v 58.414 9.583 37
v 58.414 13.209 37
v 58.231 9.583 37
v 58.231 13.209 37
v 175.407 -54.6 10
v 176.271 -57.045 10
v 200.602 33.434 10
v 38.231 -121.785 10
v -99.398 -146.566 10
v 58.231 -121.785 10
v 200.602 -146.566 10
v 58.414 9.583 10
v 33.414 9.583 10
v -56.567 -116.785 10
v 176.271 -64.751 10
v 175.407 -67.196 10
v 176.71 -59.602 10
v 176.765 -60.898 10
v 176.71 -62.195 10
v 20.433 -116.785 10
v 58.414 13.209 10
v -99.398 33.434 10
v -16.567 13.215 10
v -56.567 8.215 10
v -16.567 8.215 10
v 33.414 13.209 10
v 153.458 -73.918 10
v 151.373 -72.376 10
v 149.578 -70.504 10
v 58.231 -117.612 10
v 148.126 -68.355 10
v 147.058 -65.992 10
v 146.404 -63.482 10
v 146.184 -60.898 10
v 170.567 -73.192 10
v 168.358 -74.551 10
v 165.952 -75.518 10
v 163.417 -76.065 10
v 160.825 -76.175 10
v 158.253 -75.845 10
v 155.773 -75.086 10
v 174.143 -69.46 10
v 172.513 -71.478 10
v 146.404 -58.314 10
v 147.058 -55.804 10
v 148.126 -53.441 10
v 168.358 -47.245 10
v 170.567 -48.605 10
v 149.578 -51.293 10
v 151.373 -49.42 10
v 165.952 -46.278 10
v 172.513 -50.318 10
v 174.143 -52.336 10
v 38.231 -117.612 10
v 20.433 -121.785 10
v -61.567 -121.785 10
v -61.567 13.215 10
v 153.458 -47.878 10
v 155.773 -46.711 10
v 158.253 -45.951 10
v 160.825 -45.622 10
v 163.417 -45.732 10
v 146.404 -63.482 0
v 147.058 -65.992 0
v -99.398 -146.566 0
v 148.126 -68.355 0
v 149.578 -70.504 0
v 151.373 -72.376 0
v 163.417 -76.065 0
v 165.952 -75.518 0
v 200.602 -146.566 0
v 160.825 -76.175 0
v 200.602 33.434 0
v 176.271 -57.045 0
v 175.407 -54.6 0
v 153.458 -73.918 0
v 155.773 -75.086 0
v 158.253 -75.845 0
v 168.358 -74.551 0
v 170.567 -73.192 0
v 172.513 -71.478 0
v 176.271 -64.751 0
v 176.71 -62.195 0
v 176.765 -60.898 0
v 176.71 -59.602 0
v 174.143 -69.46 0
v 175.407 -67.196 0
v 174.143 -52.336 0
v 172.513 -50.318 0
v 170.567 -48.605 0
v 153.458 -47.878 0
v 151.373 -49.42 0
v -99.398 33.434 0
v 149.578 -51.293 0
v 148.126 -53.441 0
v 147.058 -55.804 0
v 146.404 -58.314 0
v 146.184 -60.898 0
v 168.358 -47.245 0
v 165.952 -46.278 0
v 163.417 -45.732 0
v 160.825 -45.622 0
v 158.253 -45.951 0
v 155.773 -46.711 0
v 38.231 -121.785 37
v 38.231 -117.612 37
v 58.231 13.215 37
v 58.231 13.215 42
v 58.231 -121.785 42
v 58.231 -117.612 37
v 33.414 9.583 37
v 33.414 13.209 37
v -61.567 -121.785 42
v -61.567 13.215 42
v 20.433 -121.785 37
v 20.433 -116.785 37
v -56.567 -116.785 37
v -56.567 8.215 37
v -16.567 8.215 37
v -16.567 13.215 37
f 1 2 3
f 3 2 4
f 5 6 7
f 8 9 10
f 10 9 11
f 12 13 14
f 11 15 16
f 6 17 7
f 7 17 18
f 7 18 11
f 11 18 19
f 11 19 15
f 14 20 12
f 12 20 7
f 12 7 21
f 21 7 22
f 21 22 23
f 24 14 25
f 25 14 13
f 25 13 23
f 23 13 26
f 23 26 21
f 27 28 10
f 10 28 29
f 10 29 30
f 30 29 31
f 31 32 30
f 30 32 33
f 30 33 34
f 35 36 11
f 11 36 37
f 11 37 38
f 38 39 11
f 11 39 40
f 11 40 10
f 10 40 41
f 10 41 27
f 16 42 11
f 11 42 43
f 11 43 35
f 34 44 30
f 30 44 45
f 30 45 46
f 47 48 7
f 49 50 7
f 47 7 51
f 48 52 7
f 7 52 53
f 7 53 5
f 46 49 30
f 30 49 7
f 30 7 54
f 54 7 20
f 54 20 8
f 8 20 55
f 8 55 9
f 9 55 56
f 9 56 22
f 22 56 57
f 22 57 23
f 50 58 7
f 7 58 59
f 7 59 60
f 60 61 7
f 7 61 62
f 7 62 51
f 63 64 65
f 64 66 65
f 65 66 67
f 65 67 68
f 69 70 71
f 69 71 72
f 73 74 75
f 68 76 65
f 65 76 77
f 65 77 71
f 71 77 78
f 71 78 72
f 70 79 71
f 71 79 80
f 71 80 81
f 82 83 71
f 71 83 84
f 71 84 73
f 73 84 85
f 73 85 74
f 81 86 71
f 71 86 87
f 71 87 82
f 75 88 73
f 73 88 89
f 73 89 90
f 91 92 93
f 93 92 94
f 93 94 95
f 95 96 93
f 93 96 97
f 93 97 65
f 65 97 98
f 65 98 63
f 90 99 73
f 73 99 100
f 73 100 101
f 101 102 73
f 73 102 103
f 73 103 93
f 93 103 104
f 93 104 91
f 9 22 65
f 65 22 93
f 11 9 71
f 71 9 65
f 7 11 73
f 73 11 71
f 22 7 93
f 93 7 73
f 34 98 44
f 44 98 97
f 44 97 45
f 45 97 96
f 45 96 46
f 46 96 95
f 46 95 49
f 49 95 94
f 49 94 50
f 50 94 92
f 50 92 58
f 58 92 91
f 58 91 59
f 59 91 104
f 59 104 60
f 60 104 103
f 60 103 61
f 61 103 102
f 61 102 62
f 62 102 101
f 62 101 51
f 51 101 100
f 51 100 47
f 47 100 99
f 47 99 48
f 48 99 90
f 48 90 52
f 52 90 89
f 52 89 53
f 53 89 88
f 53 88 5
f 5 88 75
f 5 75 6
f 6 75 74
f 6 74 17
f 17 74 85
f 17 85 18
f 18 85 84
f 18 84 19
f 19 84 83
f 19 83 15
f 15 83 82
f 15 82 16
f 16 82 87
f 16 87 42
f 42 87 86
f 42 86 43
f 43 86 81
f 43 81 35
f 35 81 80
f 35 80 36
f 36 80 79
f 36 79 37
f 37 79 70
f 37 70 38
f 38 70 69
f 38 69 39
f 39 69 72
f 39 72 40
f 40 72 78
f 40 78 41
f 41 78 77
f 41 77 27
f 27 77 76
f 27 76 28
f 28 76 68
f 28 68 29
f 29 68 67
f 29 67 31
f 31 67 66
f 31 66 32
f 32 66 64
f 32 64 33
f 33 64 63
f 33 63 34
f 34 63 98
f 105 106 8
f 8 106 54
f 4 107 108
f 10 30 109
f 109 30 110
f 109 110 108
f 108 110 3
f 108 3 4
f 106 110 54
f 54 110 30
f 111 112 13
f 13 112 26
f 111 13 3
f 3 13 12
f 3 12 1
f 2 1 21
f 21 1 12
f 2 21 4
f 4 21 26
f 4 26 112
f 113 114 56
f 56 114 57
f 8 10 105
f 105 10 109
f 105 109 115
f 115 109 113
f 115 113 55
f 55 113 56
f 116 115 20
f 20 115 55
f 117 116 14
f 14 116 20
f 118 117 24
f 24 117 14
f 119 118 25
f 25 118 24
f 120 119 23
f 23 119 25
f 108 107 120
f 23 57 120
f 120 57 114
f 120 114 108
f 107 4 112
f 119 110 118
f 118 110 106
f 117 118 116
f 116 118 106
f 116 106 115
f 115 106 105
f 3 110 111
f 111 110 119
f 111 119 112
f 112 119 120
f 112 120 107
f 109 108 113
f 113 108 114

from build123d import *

# Parameters (mm, degrees)
SKETCH1_W           = 300
SKETCH1_H           = 180
SKETCH1_R           = 15.290295186
BOSS_EXTRUDE1_DEPTH = 10
SKETCH2_W           = 25
SKETCH2_H           = 3.625381299
SKETCH2_W_2         = 20
SKETCH2_H_2         = 4.172919767
BOSS_EXTRUDE2_DEPTH = 27
SKETCH3_W           = 119.797948109
SKETCH3_H           = 135
BOSS_EXTRUDE3_DEPTH = 5


with BuildPart() as part:
    # Sketch1 → Boss-Extrude1 (new body)
    with BuildSketch(Plane.XY):
        with Locations((50.602409639, -56.56626506)):
            Rectangle(SKETCH1_W, SKETCH1_H)
        with Locations((161.4744217, -60.89830155)):
            Circle(SKETCH1_R, mode=Mode.SUBTRACT)
    extrude(amount=BOSS_EXTRUDE1_DEPTH)

    # Sketch2 → Boss-Extrude2 (add)
    with BuildSketch(Plane.XY.offset(10)):
        Polygon((-61.566986646, 8.214667576), (-61.566986646, -116.785332424), (-61.566986646, -121.785332424), (20.433013354, -121.785332424), (20.433013354, -116.785332424), (-56.566986646, -116.785332424), (-56.566986646, 8.214667576), (-16.566986646, 8.214667576), (-16.566986646, 13.214667576), (-56.566986646, 13.214667576), (-61.566986646, 13.214667576), align=None)
        with Locations((45.914281805, 11.395862513)):
            Rectangle(SKETCH2_W, SKETCH2_H)
        with Locations((48.230961463, -119.698872541)):
            Rectangle(SKETCH2_W_2, SKETCH2_H_2)
    extrude(amount=BOSS_EXTRUDE2_DEPTH)

    # Sketch3 → Boss-Extrude3 (add)
    with BuildSketch(Plane.XY.offset(37)):
        with Locations((-1.668012591, -54.285332424)):
            Rectangle(SKETCH3_W, SKETCH3_H)
    extrude(amount=BOSS_EXTRUDE3_DEPTH)


solid = part.part
